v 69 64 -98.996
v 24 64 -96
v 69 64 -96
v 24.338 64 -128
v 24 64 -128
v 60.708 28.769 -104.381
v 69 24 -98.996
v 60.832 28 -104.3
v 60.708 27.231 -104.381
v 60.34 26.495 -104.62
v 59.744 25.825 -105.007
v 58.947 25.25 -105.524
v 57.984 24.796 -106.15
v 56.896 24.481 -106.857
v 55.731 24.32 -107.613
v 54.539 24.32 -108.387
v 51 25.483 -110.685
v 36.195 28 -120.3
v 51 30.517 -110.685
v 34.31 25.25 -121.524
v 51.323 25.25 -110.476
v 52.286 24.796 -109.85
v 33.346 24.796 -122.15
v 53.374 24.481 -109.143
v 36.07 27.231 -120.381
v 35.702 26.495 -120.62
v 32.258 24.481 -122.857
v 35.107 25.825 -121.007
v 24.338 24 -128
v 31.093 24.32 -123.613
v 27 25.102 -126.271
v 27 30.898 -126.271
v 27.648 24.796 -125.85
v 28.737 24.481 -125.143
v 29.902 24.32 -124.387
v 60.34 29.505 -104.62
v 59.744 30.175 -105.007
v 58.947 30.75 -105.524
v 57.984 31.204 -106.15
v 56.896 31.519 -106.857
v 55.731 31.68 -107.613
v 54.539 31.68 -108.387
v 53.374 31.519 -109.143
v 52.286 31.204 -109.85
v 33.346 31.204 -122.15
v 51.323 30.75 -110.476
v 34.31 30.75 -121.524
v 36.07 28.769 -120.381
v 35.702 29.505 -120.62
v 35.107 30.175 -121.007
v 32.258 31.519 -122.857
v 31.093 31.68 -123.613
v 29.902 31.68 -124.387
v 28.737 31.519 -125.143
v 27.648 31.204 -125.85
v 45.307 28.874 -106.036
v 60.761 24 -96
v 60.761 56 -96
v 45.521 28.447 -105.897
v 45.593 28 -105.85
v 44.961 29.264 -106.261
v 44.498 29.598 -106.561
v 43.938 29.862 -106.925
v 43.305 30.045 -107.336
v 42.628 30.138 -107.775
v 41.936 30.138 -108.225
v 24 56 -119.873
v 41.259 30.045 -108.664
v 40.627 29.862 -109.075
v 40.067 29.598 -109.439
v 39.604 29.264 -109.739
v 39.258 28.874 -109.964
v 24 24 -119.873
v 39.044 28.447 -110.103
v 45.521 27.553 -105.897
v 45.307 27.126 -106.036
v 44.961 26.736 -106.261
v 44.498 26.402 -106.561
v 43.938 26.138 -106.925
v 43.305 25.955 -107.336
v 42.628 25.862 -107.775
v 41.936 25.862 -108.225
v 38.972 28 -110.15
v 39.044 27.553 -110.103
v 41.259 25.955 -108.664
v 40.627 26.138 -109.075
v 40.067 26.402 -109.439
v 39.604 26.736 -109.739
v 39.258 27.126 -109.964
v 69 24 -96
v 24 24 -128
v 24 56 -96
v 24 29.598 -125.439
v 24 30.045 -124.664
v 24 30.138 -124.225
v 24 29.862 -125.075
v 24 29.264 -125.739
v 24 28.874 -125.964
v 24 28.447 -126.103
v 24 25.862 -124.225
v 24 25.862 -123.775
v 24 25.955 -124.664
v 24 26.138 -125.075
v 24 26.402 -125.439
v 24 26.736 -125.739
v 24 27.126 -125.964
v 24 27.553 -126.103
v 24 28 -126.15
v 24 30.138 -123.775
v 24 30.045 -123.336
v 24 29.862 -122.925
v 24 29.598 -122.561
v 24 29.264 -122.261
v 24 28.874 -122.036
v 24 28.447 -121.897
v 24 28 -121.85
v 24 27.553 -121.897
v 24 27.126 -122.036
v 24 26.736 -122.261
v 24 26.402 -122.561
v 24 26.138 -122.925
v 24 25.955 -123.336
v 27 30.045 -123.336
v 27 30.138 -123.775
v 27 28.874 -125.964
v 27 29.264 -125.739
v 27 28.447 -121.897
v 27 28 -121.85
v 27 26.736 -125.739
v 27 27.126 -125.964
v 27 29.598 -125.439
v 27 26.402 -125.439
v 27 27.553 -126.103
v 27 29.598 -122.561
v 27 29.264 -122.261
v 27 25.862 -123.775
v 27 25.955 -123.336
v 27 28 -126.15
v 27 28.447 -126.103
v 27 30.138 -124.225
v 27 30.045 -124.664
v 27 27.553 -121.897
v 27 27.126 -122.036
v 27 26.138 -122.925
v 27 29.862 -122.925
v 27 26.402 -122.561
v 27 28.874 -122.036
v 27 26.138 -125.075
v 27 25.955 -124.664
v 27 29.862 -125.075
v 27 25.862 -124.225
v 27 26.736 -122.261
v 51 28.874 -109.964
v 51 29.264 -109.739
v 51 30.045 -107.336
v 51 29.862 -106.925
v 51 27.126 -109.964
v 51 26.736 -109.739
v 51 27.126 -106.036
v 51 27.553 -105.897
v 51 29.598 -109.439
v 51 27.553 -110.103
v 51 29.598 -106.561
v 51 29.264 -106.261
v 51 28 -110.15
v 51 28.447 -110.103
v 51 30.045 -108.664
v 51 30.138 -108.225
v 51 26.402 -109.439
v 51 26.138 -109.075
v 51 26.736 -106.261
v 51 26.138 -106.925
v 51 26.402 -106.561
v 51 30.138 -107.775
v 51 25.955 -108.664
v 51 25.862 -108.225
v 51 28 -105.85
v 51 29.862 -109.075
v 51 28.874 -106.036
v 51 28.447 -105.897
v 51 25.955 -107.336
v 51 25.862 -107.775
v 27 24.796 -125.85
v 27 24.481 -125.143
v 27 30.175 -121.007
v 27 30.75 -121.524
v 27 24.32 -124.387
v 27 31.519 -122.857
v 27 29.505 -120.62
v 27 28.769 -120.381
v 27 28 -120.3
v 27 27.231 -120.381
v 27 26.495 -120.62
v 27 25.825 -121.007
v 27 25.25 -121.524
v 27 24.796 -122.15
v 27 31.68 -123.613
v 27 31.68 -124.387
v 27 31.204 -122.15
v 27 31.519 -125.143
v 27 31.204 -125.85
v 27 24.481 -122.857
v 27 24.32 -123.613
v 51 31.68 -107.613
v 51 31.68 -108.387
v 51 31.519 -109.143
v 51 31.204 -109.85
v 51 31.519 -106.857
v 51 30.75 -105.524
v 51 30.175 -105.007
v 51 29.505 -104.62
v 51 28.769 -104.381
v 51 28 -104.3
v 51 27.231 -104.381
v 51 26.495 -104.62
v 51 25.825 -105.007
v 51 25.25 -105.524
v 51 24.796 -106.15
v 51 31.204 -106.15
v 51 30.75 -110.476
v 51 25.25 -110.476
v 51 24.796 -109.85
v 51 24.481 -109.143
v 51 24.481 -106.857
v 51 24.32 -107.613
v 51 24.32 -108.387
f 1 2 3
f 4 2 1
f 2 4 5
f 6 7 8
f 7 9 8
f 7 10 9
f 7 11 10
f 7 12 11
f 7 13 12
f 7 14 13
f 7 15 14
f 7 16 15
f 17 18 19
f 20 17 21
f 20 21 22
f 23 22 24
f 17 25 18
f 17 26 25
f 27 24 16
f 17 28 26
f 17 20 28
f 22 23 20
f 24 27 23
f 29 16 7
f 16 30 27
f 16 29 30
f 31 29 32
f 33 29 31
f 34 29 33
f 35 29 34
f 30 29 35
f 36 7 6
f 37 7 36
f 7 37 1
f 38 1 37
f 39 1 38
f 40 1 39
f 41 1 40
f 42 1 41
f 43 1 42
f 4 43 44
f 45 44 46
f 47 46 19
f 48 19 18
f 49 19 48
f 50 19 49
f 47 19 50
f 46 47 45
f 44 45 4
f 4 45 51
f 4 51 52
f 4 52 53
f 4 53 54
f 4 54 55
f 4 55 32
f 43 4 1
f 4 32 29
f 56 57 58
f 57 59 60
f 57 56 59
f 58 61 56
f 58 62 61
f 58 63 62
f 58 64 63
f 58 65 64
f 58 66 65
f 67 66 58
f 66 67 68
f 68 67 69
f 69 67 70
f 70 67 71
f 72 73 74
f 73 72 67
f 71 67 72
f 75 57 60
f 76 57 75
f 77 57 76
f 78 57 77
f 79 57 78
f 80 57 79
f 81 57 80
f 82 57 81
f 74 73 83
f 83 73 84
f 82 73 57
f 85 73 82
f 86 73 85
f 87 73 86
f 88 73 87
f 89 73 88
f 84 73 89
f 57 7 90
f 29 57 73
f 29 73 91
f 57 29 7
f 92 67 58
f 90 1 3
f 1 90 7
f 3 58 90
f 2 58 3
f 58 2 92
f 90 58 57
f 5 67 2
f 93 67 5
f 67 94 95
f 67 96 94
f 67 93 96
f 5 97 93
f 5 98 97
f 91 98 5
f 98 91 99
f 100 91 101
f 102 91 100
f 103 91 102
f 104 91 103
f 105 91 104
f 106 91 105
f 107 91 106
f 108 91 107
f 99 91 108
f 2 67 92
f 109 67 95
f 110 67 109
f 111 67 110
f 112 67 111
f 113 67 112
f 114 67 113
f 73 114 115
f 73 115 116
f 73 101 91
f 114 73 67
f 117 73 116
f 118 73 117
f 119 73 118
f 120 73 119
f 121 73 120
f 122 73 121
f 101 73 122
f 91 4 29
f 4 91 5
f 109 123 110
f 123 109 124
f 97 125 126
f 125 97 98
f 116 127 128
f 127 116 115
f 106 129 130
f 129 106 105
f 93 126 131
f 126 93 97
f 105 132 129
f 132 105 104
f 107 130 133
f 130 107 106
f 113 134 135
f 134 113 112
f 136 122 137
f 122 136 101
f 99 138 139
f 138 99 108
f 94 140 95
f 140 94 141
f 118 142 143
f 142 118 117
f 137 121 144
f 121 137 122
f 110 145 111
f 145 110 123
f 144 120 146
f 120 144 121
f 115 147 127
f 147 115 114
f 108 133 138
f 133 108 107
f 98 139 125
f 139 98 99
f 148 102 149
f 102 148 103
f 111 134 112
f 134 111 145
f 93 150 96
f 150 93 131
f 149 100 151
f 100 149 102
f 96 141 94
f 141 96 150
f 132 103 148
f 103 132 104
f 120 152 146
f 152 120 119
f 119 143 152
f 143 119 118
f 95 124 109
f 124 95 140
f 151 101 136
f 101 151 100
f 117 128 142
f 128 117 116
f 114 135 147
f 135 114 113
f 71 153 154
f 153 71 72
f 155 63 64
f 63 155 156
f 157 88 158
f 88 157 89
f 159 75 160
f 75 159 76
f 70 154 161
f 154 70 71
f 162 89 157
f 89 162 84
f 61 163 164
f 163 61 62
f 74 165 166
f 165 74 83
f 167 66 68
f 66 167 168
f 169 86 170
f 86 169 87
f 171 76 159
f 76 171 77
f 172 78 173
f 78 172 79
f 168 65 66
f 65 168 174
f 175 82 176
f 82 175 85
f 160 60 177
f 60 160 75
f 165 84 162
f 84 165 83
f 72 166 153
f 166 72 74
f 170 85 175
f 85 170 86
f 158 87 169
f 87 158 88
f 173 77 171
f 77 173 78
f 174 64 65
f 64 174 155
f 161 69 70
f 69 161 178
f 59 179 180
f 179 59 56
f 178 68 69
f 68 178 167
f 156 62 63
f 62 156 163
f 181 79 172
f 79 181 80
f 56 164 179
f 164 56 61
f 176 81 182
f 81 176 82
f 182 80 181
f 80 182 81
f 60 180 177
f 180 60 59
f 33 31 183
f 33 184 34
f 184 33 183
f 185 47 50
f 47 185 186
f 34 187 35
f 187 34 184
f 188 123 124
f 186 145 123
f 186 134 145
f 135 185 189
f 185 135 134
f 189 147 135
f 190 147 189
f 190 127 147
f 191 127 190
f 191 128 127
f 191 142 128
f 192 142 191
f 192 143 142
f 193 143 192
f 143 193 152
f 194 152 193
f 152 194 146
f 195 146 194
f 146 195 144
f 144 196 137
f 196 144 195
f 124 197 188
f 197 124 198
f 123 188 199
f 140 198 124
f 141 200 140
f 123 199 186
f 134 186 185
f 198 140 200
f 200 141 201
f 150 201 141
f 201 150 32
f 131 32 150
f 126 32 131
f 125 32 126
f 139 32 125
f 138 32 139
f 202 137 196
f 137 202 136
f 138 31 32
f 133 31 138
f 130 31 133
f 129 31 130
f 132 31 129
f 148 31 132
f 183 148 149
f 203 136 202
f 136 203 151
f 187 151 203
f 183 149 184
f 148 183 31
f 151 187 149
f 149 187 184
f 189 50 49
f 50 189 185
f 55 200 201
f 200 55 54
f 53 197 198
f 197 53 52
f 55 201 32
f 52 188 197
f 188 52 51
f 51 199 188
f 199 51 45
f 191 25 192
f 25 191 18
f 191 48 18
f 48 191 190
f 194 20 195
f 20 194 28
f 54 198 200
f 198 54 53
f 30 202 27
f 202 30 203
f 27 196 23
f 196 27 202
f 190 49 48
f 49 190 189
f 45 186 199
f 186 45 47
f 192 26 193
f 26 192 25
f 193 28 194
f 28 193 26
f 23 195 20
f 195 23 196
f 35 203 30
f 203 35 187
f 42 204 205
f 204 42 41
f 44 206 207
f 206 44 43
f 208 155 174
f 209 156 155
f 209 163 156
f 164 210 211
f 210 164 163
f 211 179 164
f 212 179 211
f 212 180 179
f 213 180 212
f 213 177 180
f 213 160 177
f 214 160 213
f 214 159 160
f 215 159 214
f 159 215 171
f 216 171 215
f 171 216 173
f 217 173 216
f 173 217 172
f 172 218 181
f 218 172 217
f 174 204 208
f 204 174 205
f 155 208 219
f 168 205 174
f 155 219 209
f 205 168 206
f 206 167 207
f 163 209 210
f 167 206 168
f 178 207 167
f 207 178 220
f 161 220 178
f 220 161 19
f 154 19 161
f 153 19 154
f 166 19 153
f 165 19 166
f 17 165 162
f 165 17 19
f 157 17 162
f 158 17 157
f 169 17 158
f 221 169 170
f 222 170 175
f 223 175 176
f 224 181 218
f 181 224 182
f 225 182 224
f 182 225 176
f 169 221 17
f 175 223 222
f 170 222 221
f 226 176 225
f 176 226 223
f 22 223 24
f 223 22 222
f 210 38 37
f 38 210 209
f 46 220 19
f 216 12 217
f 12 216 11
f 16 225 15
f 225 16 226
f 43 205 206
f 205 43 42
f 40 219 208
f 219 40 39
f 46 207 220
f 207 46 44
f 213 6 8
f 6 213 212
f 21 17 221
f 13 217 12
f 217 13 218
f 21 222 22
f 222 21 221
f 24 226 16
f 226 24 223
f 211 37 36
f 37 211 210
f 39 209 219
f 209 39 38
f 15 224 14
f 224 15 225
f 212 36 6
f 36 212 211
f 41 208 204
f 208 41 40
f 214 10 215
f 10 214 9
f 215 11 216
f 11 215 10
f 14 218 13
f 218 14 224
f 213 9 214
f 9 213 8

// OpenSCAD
// bottom slide
color ("plum")
difference() {
union() {
    // slide
    translate([70,24,-90])
    rotate([0,147,0])
    cube([65,40,7]);
    
    // right side
    translate([50,56,-75])
    rotate([0,147,0])
    cube([50,8,25]);
    //*/
    
}
    // front top clean up
    translate([69,20,-100])
    cube([20,60,30]);

    // top clean up
    translate([15,20,-96])
    cube([60,60,30]);
    
    // back clean up
    translate([1,20,-140])
    cube([23,60,50]);

    // bottom clean up
    translate([14,20,-135])
    cube([15,60,7]);
    //*/

    // bottom left hole
    translate([-4,28,-124])
    rotate([0,90,0])
    cylinder(r=2.15,60, $fn=30);
    
    // left hole
    translate([-4,28,-108])
    rotate([0,90,0])
    cylinder(r=2.15,90, $fn=30);
    
    // spot for screw at the end of the holes
    translate([27,28,-124])
    rotate([0,90,0])
    cylinder(r=3.7,12, $fn=30);
    
    translate([51,28,-108])
    rotate([0,90,0])
    cylinder(r=3.7,12, $fn=30);
}
//*/
